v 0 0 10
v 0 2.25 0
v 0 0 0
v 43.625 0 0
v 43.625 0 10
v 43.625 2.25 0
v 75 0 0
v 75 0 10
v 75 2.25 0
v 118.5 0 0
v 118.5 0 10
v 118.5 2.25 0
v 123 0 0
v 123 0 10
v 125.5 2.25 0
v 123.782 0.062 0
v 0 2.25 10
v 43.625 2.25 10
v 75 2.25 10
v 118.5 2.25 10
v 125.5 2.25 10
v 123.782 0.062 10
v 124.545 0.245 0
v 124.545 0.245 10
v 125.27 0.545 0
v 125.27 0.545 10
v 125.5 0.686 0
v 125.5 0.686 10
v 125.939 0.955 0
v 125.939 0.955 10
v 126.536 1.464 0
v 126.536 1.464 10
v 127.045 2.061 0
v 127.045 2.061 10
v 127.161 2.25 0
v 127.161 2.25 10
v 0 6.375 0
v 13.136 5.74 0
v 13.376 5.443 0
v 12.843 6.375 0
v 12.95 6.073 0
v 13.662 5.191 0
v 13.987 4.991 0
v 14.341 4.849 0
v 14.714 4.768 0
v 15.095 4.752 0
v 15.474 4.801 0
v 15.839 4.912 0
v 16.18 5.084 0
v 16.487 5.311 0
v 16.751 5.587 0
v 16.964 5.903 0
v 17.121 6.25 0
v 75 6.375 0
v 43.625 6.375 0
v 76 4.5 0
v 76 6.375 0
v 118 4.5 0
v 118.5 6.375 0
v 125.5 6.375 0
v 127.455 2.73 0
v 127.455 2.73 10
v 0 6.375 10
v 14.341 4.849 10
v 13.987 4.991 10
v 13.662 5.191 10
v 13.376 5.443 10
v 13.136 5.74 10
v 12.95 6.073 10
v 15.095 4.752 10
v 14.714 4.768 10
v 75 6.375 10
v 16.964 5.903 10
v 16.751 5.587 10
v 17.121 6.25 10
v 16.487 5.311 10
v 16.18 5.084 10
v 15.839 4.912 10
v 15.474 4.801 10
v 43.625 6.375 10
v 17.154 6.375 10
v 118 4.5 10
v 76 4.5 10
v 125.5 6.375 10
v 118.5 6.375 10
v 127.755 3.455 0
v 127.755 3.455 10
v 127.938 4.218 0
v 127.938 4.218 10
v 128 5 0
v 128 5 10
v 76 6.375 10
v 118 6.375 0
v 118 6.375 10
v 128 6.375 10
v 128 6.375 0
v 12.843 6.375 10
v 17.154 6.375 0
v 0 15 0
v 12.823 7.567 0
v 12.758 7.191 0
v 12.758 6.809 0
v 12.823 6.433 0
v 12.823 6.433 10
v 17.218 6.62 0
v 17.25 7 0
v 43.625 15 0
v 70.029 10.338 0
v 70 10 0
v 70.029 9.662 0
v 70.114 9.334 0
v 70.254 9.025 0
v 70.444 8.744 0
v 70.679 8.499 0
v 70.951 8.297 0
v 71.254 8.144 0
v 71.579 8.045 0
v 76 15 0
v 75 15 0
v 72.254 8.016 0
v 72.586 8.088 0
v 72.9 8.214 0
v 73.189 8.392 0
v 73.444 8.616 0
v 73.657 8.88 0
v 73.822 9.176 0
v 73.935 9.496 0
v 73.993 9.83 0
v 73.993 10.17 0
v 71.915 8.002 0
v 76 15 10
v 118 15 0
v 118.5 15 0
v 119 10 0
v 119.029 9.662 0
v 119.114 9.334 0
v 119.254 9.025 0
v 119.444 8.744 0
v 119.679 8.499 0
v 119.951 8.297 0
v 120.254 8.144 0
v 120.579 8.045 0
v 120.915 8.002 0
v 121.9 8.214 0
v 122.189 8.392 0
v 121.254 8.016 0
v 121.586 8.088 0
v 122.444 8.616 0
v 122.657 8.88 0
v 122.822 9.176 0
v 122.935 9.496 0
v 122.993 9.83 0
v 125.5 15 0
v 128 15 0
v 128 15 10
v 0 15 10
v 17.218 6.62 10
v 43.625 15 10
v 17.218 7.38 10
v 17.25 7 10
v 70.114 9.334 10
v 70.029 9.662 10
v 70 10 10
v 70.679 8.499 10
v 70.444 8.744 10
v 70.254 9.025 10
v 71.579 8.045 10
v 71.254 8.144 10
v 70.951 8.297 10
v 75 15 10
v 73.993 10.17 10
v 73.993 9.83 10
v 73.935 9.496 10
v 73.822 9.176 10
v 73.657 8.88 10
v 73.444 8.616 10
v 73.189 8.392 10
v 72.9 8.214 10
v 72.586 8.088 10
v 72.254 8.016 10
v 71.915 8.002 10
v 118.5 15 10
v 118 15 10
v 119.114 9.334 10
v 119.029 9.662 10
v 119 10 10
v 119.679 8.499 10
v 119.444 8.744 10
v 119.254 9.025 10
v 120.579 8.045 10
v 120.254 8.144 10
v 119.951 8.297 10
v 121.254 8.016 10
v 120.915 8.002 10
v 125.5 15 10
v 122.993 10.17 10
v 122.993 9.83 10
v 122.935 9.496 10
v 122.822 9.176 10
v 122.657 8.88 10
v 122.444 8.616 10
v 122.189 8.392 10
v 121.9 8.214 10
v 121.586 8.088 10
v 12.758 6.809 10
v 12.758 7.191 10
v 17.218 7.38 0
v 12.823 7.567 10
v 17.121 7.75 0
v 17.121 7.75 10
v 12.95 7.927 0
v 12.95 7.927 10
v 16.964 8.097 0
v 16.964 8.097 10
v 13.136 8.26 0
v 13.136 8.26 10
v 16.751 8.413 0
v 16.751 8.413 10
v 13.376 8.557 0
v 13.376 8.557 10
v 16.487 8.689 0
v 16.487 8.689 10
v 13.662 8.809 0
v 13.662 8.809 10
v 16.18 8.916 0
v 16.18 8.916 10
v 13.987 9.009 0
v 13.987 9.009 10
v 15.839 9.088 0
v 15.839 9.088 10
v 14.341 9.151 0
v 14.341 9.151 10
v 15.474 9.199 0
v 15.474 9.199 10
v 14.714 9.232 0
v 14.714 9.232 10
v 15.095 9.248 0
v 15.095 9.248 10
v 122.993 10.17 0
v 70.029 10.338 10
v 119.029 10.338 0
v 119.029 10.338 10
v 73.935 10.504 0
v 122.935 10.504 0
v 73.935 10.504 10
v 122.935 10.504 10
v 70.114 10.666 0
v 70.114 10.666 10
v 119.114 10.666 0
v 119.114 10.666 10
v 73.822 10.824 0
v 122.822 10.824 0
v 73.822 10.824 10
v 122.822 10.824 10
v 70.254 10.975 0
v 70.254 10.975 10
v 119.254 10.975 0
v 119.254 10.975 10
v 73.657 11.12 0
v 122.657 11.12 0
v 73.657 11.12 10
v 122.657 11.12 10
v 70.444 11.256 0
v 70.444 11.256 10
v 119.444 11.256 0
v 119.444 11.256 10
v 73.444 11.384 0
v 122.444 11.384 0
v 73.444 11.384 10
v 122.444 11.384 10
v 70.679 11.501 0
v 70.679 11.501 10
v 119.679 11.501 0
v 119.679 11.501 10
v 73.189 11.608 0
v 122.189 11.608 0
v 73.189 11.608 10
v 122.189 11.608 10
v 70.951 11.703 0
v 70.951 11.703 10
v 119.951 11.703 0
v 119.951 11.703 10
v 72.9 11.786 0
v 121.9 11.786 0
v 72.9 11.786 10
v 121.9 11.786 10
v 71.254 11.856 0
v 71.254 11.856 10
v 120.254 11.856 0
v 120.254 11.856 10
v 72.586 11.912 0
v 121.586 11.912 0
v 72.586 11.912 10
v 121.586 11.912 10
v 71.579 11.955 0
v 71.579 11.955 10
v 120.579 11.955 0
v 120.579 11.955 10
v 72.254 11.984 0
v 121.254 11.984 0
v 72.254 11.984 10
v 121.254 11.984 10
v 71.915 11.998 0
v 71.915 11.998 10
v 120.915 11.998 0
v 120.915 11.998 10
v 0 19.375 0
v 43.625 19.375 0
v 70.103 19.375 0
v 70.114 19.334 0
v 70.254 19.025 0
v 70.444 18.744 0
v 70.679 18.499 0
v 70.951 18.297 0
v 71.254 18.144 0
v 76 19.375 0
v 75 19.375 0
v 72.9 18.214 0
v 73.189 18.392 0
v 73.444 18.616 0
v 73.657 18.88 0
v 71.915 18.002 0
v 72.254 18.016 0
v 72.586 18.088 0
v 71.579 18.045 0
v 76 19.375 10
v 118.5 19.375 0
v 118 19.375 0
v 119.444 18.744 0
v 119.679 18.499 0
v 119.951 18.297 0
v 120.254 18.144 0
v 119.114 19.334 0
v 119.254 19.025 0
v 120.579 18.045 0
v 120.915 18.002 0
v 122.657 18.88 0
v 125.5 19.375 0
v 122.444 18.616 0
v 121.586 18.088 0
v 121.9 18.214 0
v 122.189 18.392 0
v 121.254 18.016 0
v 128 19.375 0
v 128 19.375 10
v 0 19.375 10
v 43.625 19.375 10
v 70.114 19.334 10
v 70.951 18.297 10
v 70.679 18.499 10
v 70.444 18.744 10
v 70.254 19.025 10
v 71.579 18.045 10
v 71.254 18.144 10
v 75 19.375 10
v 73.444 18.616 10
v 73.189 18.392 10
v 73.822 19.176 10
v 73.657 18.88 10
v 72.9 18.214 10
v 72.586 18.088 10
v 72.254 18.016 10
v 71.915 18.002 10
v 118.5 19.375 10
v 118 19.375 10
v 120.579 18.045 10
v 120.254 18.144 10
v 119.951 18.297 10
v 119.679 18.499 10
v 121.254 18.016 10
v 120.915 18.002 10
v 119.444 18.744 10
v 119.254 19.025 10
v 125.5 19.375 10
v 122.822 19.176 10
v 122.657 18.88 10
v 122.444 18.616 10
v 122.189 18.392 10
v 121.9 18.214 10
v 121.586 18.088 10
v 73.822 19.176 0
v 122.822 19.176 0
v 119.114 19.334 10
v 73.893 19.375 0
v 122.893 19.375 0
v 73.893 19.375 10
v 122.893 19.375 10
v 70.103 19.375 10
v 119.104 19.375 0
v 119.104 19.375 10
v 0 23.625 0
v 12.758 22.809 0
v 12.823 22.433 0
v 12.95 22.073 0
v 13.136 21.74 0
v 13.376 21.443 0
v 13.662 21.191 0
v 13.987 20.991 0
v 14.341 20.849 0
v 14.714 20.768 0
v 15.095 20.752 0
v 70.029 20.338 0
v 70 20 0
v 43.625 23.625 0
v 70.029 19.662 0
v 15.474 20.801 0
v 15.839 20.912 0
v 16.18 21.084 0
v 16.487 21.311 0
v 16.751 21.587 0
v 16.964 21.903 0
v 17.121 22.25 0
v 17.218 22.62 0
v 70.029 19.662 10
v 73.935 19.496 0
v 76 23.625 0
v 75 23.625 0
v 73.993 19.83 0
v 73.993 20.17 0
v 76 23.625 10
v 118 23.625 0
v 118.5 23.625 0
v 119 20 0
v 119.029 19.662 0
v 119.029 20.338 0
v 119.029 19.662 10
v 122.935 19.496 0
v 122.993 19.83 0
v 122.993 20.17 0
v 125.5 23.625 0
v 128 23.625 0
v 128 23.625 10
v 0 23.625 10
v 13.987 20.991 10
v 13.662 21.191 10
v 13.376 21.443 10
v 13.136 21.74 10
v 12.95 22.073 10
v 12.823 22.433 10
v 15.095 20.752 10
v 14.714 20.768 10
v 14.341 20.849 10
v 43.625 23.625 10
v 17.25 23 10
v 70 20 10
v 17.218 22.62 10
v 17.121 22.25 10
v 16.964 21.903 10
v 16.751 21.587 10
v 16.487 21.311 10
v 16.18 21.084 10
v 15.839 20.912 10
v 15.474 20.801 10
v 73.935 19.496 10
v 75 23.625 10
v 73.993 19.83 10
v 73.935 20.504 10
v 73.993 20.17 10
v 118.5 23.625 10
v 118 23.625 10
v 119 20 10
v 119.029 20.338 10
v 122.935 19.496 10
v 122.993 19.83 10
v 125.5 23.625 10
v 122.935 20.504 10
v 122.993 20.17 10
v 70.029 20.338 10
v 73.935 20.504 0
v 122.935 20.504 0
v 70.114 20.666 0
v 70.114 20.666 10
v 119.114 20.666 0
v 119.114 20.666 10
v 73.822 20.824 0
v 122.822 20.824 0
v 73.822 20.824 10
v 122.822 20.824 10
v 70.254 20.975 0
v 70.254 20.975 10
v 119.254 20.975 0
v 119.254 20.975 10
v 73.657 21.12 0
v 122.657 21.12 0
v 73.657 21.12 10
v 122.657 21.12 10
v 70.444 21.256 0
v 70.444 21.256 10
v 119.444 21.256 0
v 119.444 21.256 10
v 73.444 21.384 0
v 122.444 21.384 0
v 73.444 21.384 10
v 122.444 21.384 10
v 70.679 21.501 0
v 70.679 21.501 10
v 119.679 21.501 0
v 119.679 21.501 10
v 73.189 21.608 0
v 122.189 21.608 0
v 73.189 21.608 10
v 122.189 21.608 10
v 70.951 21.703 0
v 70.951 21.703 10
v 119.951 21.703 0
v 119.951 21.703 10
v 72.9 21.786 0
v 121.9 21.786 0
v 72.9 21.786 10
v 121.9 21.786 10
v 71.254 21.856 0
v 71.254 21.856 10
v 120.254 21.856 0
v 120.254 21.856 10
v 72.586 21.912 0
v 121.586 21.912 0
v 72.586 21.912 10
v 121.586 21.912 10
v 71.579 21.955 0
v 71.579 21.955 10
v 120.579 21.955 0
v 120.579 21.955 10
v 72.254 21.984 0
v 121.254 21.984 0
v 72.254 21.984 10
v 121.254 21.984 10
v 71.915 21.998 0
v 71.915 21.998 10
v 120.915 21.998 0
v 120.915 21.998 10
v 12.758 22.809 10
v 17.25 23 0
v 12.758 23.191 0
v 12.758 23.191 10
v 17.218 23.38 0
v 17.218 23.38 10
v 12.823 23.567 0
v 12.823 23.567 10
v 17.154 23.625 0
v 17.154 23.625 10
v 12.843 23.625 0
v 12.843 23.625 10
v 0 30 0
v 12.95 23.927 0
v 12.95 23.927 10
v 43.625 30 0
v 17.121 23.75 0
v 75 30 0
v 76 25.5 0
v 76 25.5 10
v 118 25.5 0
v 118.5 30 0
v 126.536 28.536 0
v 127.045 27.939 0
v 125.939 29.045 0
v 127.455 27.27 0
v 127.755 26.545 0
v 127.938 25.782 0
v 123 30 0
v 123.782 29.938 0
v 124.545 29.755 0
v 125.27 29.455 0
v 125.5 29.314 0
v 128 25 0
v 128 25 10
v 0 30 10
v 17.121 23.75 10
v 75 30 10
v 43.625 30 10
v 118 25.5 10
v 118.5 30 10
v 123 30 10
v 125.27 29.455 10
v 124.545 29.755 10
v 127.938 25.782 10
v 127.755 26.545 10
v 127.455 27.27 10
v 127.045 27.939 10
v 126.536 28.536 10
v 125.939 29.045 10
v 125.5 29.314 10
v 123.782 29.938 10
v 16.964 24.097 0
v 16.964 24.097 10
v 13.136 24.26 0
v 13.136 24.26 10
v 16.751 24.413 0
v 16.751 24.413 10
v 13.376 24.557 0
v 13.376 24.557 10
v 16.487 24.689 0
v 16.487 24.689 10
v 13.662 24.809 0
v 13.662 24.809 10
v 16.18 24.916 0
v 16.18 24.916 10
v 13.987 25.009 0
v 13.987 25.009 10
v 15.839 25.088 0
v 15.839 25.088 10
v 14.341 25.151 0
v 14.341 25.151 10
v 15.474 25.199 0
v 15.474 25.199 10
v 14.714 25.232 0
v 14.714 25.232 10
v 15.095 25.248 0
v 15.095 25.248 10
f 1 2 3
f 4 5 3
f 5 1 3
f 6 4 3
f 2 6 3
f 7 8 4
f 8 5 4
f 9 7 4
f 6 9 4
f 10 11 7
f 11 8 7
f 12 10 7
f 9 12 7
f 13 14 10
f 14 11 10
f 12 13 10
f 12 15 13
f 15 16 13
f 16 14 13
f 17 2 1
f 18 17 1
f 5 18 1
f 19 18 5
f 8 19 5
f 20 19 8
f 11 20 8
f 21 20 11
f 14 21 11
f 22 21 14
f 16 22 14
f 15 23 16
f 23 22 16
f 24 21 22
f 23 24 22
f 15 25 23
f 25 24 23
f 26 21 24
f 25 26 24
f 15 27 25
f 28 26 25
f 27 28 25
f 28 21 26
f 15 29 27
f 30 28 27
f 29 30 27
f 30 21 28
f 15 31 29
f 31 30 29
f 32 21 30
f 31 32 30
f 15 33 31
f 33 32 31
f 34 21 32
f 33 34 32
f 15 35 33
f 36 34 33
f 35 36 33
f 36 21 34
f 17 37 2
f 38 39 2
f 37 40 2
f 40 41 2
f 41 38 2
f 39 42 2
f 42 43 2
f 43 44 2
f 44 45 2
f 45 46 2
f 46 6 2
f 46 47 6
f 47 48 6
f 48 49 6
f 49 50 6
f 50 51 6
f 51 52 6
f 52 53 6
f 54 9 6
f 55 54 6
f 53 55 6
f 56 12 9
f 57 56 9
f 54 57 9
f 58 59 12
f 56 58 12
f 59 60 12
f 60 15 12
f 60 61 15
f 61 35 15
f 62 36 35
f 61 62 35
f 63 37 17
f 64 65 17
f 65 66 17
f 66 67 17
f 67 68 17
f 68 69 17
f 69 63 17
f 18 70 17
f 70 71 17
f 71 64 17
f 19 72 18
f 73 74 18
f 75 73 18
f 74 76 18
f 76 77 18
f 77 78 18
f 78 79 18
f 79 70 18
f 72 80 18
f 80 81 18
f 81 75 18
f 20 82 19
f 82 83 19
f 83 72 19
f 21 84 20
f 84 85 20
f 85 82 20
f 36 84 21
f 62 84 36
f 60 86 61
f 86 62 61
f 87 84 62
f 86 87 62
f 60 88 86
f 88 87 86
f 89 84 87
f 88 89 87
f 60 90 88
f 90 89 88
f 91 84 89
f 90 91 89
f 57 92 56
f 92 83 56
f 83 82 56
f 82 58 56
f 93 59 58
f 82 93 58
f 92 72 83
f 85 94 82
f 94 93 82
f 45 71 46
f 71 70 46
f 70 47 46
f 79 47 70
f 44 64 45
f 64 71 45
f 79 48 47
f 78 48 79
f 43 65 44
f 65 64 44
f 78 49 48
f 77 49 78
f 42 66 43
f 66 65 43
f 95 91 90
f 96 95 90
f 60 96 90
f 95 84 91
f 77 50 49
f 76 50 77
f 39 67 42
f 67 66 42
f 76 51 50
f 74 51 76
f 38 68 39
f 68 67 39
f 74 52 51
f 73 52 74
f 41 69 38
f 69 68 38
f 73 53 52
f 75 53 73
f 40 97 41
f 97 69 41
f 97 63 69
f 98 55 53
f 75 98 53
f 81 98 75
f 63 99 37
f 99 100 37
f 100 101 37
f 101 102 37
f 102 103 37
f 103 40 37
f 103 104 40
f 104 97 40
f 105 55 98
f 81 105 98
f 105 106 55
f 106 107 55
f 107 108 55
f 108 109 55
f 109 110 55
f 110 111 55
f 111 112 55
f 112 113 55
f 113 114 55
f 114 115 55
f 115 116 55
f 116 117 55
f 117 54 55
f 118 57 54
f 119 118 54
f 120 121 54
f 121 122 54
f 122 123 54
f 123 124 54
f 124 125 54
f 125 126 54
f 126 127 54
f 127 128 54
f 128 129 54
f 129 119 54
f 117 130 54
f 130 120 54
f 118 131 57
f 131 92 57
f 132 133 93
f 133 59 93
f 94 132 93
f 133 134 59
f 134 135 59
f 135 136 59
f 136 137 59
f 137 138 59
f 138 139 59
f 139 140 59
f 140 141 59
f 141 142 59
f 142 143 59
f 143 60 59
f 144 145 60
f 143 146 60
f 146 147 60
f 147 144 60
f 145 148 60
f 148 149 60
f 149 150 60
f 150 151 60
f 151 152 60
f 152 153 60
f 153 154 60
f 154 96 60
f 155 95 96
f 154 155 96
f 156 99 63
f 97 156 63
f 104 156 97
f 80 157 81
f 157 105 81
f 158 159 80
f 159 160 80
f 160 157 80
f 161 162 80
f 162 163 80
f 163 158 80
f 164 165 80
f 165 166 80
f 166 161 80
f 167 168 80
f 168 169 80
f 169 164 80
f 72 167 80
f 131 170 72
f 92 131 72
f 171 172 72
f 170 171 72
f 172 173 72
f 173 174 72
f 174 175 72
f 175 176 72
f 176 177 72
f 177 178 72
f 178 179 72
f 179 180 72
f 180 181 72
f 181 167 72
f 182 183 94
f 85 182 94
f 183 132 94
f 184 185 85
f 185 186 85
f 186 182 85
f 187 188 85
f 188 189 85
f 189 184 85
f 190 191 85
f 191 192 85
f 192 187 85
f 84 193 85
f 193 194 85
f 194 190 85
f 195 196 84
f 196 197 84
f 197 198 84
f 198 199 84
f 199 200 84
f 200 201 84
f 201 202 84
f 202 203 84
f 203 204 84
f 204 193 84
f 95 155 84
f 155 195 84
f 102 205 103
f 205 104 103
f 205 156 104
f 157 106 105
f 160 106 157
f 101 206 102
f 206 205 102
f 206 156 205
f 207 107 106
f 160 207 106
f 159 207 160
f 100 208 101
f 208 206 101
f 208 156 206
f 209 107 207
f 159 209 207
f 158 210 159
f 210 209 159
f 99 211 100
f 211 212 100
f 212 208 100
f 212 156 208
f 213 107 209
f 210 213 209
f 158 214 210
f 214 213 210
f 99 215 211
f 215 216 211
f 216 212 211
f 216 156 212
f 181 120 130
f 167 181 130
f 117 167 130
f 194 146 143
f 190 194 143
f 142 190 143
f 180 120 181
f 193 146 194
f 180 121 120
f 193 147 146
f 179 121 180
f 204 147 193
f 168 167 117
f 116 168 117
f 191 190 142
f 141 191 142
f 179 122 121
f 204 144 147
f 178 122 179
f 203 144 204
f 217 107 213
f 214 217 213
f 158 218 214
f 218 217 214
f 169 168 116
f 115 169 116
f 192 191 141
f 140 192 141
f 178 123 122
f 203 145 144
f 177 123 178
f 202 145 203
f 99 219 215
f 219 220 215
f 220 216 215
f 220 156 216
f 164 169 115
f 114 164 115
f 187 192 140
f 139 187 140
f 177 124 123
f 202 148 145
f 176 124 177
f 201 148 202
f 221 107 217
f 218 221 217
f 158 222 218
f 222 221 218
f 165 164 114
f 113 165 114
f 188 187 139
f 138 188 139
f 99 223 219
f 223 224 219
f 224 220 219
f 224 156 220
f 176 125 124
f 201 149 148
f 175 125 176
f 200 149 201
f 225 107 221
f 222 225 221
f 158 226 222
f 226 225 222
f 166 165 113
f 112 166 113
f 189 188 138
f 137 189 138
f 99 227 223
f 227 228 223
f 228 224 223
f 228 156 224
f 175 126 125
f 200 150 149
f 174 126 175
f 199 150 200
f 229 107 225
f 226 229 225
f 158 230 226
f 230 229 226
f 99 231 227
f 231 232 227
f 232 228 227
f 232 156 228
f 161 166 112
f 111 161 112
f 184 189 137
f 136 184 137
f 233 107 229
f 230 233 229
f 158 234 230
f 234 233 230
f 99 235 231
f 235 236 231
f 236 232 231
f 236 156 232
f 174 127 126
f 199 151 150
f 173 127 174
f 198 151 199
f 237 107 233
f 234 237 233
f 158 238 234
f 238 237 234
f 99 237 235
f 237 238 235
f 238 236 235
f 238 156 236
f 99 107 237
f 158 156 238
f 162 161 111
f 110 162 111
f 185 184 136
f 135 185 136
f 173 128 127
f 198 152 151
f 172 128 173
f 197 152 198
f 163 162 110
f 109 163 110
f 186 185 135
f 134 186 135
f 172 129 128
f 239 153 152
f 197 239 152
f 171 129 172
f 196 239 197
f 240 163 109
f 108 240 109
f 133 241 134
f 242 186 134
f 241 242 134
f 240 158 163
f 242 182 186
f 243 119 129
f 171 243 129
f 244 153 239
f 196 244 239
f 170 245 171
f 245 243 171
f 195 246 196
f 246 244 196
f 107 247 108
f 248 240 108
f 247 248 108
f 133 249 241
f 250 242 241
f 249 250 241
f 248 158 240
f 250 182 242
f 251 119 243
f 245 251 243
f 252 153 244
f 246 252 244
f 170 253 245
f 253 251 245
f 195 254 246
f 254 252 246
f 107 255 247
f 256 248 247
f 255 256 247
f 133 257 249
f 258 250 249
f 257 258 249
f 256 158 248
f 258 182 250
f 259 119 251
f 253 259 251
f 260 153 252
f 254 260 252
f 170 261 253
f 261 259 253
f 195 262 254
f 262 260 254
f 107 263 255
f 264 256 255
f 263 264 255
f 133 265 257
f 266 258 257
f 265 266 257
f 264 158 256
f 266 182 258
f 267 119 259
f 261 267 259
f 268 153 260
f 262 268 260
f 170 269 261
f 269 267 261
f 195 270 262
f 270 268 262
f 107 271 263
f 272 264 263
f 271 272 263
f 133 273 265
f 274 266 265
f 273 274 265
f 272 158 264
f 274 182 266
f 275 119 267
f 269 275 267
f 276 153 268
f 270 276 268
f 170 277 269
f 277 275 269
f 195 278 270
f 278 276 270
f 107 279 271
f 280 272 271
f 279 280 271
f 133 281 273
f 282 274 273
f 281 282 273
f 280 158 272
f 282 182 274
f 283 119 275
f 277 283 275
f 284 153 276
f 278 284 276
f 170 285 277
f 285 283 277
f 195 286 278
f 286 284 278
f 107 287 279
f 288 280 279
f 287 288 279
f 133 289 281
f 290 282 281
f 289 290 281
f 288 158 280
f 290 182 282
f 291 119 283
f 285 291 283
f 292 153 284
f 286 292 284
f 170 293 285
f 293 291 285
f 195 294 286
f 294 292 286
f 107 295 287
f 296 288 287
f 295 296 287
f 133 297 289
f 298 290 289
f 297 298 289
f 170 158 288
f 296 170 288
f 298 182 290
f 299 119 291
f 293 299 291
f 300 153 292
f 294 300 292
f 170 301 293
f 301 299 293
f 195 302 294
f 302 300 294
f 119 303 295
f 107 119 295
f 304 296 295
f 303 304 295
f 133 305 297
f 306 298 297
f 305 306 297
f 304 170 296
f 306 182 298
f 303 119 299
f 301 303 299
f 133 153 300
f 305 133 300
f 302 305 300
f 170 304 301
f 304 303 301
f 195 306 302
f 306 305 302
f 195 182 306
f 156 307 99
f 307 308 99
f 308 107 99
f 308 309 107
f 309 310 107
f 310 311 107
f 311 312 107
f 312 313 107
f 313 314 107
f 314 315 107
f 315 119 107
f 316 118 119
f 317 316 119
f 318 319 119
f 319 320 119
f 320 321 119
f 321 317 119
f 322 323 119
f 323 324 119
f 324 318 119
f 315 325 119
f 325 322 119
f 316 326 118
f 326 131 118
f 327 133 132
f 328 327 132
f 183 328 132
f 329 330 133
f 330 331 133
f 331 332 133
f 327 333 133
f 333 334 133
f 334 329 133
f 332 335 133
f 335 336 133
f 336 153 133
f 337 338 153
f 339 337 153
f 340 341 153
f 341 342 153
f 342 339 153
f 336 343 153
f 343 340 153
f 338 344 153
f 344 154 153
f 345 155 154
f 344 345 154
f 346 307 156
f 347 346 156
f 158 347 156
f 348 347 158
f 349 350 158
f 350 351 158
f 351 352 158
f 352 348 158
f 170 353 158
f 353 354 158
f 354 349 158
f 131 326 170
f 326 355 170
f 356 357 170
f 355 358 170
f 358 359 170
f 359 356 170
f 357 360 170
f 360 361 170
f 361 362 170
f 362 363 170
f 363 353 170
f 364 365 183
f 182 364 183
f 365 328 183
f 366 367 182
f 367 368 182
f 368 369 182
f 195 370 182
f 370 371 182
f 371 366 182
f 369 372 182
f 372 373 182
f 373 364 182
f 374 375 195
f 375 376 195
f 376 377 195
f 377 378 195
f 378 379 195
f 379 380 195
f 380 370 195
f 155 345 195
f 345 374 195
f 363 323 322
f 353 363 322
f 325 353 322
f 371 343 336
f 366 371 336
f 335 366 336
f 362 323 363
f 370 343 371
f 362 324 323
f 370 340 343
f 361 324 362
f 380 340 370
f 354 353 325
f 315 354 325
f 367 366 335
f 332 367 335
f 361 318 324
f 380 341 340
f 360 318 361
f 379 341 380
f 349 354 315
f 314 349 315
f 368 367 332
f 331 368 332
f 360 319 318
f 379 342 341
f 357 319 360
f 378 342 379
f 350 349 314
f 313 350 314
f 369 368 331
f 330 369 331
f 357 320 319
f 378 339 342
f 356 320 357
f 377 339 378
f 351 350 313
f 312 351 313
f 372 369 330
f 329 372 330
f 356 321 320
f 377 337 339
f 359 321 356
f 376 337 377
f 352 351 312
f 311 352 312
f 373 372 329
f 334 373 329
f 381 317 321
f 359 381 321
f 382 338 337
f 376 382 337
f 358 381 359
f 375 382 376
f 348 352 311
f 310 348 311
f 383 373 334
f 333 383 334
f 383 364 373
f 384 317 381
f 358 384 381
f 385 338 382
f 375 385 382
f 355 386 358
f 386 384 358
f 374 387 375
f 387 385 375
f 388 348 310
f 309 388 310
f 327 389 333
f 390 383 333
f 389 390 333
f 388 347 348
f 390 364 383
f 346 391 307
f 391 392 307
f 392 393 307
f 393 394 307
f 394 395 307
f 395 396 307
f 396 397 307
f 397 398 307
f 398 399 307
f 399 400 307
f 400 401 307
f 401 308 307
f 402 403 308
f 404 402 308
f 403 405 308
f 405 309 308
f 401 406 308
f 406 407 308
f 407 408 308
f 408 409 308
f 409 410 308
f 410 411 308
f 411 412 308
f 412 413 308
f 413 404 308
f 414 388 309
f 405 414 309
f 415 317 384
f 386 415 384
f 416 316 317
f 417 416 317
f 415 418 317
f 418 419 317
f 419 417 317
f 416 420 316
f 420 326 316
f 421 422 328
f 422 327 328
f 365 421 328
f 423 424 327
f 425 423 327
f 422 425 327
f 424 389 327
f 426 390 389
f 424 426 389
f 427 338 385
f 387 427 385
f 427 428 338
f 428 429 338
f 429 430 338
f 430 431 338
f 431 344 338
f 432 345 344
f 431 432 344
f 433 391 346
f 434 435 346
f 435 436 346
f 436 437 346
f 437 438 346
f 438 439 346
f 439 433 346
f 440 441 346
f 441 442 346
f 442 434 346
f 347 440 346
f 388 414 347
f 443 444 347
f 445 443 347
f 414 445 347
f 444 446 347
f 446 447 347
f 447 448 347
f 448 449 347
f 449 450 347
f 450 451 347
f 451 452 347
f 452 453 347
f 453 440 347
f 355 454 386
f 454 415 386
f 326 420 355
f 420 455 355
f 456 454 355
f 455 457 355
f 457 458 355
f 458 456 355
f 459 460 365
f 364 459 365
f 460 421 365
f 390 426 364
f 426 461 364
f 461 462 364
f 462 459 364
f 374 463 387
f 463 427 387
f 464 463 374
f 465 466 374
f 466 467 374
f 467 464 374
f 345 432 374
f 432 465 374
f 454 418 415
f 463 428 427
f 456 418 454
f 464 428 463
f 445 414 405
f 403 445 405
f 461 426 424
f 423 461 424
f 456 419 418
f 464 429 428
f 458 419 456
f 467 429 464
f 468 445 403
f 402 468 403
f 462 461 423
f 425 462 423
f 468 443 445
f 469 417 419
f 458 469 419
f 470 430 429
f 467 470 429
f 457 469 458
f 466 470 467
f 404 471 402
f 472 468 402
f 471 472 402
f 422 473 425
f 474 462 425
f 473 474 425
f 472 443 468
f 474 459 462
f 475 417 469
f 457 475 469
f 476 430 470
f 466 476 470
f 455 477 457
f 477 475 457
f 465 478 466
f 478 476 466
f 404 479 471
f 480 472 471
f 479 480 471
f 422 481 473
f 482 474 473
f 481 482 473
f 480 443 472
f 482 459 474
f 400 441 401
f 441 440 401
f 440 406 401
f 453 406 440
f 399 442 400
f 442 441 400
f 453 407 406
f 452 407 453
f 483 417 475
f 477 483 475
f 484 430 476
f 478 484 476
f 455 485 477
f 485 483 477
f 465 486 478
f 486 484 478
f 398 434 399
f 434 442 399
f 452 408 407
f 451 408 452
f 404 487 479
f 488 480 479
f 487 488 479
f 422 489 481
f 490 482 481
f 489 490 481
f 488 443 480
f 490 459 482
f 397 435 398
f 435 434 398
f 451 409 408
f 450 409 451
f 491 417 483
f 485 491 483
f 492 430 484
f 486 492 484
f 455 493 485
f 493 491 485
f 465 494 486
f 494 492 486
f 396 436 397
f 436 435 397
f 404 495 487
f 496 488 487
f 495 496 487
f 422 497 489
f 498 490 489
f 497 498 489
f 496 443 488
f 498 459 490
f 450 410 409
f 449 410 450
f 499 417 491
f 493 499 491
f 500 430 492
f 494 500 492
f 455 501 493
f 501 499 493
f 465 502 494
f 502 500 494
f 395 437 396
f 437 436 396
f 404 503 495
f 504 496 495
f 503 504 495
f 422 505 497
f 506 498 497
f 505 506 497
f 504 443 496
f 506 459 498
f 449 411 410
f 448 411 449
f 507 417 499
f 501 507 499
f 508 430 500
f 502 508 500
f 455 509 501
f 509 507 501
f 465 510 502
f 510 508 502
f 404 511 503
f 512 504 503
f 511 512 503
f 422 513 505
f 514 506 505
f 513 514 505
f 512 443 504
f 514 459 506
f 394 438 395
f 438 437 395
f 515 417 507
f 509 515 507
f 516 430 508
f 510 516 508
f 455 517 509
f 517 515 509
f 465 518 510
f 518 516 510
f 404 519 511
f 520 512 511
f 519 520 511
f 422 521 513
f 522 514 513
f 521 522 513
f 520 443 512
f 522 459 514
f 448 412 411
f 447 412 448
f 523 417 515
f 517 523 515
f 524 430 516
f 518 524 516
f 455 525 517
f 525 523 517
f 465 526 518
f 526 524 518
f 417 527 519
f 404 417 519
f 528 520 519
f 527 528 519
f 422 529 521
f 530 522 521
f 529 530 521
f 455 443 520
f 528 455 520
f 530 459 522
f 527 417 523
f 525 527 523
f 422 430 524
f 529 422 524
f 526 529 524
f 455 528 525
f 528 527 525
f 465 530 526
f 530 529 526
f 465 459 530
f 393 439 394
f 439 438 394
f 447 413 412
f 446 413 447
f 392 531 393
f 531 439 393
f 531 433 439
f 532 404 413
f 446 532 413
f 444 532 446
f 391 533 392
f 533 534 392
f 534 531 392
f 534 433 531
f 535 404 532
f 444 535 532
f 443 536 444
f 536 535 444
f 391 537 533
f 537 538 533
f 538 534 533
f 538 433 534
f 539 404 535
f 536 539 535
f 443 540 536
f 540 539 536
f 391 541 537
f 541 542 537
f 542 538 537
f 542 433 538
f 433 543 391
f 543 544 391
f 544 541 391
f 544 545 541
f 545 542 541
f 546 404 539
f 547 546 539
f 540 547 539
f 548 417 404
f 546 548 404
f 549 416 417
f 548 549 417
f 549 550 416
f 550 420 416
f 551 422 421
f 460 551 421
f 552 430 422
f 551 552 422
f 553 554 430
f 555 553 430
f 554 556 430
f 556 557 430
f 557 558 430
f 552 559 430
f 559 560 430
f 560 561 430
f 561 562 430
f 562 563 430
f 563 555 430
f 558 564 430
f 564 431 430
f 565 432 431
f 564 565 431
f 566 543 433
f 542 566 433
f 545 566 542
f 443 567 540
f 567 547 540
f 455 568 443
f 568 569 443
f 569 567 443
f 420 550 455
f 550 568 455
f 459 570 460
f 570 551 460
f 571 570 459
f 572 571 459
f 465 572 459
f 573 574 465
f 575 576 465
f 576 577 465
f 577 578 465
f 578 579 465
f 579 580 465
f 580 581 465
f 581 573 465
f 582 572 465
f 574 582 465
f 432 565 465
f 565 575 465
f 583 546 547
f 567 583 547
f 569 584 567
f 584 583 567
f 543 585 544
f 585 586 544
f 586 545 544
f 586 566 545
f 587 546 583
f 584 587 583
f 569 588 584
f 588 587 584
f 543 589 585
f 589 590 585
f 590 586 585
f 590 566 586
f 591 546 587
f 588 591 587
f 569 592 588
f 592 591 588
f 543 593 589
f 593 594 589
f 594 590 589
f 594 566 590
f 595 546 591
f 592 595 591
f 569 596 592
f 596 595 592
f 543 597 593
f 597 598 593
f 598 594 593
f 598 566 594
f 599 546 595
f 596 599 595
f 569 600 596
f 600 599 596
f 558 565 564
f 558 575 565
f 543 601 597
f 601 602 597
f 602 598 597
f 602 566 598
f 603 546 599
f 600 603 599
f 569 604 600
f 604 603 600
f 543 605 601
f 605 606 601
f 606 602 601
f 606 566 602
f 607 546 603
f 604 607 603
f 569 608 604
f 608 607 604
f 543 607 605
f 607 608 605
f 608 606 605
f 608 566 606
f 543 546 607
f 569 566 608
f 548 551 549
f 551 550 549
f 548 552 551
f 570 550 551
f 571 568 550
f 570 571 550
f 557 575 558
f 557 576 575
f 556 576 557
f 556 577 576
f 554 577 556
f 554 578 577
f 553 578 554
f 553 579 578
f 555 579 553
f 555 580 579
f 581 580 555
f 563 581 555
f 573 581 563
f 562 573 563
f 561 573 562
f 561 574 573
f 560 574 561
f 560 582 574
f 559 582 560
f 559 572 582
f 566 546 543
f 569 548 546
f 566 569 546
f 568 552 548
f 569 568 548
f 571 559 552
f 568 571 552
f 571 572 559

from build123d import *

# Parameters (mm, degrees)
ESQUISSE1_W             = 128
ESQUISSE1_H             = 30
BOSS_EXTRU_1_DEPTH      = 10
ESQUISSE2_R             = 2
ESQUISSE2_W             = 42
ESQUISSE2_H             = 21
ENL_V_MAT_EXTRU_1_DEPTH = 10
CONG_1_R                = 5
ESQUISSE4_R             = 2.25
ENL_V_MAT_EXTRU_2_DEPTH = 10


with BuildPart() as part:
    # Esquisse1 → Boss.-Extru.1 (new body)
    with BuildSketch(Plane.XY):
        with Locations((64, 15)):
            Rectangle(ESQUISSE1_W, ESQUISSE1_H)
    extrude(amount=BOSS_EXTRU_1_DEPTH)

    # Esquisse2 → Enlèv. mat.-Extru.1 (cut)
    with BuildSketch(Plane(origin=(0, 0, 0), x_dir=(-1, 0, 0), z_dir=(0, 0, -1))):
        with Locations((-121, 10)):
            Circle(ESQUISSE2_R)
        with Locations((-121, 20)):
            Circle(ESQUISSE2_R)
        with Locations((-72, 10)):
            Circle(ESQUISSE2_R)
        with Locations((-72, 20)):
            Circle(ESQUISSE2_R)
        with Locations((-97, 15)):
            Rectangle(ESQUISSE2_W, ESQUISSE2_H)
    extrude(amount=-ENL_V_MAT_EXTRU_1_DEPTH, mode=Mode.SUBTRACT)

    # Congé1
    cong_1_edges = [part.edges().sort_by_distance(p)[0] for p in [
        (128, 30, 5),
        (128, 0, 5),
    ]]
    fillet(cong_1_edges, radius=CONG_1_R)

    # Esquisse4 → Enlèv. mat.-Extru.2 (cut)
    with BuildSketch(Plane.XY.offset(10)):
        with Locations((15, 23)):
            Circle(ESQUISSE4_R)
        with Locations((15, 7)):
            Circle(ESQUISSE4_R)
    extrude(amount=-ENL_V_MAT_EXTRU_2_DEPTH, mode=Mode.SUBTRACT)


solid = part.part
